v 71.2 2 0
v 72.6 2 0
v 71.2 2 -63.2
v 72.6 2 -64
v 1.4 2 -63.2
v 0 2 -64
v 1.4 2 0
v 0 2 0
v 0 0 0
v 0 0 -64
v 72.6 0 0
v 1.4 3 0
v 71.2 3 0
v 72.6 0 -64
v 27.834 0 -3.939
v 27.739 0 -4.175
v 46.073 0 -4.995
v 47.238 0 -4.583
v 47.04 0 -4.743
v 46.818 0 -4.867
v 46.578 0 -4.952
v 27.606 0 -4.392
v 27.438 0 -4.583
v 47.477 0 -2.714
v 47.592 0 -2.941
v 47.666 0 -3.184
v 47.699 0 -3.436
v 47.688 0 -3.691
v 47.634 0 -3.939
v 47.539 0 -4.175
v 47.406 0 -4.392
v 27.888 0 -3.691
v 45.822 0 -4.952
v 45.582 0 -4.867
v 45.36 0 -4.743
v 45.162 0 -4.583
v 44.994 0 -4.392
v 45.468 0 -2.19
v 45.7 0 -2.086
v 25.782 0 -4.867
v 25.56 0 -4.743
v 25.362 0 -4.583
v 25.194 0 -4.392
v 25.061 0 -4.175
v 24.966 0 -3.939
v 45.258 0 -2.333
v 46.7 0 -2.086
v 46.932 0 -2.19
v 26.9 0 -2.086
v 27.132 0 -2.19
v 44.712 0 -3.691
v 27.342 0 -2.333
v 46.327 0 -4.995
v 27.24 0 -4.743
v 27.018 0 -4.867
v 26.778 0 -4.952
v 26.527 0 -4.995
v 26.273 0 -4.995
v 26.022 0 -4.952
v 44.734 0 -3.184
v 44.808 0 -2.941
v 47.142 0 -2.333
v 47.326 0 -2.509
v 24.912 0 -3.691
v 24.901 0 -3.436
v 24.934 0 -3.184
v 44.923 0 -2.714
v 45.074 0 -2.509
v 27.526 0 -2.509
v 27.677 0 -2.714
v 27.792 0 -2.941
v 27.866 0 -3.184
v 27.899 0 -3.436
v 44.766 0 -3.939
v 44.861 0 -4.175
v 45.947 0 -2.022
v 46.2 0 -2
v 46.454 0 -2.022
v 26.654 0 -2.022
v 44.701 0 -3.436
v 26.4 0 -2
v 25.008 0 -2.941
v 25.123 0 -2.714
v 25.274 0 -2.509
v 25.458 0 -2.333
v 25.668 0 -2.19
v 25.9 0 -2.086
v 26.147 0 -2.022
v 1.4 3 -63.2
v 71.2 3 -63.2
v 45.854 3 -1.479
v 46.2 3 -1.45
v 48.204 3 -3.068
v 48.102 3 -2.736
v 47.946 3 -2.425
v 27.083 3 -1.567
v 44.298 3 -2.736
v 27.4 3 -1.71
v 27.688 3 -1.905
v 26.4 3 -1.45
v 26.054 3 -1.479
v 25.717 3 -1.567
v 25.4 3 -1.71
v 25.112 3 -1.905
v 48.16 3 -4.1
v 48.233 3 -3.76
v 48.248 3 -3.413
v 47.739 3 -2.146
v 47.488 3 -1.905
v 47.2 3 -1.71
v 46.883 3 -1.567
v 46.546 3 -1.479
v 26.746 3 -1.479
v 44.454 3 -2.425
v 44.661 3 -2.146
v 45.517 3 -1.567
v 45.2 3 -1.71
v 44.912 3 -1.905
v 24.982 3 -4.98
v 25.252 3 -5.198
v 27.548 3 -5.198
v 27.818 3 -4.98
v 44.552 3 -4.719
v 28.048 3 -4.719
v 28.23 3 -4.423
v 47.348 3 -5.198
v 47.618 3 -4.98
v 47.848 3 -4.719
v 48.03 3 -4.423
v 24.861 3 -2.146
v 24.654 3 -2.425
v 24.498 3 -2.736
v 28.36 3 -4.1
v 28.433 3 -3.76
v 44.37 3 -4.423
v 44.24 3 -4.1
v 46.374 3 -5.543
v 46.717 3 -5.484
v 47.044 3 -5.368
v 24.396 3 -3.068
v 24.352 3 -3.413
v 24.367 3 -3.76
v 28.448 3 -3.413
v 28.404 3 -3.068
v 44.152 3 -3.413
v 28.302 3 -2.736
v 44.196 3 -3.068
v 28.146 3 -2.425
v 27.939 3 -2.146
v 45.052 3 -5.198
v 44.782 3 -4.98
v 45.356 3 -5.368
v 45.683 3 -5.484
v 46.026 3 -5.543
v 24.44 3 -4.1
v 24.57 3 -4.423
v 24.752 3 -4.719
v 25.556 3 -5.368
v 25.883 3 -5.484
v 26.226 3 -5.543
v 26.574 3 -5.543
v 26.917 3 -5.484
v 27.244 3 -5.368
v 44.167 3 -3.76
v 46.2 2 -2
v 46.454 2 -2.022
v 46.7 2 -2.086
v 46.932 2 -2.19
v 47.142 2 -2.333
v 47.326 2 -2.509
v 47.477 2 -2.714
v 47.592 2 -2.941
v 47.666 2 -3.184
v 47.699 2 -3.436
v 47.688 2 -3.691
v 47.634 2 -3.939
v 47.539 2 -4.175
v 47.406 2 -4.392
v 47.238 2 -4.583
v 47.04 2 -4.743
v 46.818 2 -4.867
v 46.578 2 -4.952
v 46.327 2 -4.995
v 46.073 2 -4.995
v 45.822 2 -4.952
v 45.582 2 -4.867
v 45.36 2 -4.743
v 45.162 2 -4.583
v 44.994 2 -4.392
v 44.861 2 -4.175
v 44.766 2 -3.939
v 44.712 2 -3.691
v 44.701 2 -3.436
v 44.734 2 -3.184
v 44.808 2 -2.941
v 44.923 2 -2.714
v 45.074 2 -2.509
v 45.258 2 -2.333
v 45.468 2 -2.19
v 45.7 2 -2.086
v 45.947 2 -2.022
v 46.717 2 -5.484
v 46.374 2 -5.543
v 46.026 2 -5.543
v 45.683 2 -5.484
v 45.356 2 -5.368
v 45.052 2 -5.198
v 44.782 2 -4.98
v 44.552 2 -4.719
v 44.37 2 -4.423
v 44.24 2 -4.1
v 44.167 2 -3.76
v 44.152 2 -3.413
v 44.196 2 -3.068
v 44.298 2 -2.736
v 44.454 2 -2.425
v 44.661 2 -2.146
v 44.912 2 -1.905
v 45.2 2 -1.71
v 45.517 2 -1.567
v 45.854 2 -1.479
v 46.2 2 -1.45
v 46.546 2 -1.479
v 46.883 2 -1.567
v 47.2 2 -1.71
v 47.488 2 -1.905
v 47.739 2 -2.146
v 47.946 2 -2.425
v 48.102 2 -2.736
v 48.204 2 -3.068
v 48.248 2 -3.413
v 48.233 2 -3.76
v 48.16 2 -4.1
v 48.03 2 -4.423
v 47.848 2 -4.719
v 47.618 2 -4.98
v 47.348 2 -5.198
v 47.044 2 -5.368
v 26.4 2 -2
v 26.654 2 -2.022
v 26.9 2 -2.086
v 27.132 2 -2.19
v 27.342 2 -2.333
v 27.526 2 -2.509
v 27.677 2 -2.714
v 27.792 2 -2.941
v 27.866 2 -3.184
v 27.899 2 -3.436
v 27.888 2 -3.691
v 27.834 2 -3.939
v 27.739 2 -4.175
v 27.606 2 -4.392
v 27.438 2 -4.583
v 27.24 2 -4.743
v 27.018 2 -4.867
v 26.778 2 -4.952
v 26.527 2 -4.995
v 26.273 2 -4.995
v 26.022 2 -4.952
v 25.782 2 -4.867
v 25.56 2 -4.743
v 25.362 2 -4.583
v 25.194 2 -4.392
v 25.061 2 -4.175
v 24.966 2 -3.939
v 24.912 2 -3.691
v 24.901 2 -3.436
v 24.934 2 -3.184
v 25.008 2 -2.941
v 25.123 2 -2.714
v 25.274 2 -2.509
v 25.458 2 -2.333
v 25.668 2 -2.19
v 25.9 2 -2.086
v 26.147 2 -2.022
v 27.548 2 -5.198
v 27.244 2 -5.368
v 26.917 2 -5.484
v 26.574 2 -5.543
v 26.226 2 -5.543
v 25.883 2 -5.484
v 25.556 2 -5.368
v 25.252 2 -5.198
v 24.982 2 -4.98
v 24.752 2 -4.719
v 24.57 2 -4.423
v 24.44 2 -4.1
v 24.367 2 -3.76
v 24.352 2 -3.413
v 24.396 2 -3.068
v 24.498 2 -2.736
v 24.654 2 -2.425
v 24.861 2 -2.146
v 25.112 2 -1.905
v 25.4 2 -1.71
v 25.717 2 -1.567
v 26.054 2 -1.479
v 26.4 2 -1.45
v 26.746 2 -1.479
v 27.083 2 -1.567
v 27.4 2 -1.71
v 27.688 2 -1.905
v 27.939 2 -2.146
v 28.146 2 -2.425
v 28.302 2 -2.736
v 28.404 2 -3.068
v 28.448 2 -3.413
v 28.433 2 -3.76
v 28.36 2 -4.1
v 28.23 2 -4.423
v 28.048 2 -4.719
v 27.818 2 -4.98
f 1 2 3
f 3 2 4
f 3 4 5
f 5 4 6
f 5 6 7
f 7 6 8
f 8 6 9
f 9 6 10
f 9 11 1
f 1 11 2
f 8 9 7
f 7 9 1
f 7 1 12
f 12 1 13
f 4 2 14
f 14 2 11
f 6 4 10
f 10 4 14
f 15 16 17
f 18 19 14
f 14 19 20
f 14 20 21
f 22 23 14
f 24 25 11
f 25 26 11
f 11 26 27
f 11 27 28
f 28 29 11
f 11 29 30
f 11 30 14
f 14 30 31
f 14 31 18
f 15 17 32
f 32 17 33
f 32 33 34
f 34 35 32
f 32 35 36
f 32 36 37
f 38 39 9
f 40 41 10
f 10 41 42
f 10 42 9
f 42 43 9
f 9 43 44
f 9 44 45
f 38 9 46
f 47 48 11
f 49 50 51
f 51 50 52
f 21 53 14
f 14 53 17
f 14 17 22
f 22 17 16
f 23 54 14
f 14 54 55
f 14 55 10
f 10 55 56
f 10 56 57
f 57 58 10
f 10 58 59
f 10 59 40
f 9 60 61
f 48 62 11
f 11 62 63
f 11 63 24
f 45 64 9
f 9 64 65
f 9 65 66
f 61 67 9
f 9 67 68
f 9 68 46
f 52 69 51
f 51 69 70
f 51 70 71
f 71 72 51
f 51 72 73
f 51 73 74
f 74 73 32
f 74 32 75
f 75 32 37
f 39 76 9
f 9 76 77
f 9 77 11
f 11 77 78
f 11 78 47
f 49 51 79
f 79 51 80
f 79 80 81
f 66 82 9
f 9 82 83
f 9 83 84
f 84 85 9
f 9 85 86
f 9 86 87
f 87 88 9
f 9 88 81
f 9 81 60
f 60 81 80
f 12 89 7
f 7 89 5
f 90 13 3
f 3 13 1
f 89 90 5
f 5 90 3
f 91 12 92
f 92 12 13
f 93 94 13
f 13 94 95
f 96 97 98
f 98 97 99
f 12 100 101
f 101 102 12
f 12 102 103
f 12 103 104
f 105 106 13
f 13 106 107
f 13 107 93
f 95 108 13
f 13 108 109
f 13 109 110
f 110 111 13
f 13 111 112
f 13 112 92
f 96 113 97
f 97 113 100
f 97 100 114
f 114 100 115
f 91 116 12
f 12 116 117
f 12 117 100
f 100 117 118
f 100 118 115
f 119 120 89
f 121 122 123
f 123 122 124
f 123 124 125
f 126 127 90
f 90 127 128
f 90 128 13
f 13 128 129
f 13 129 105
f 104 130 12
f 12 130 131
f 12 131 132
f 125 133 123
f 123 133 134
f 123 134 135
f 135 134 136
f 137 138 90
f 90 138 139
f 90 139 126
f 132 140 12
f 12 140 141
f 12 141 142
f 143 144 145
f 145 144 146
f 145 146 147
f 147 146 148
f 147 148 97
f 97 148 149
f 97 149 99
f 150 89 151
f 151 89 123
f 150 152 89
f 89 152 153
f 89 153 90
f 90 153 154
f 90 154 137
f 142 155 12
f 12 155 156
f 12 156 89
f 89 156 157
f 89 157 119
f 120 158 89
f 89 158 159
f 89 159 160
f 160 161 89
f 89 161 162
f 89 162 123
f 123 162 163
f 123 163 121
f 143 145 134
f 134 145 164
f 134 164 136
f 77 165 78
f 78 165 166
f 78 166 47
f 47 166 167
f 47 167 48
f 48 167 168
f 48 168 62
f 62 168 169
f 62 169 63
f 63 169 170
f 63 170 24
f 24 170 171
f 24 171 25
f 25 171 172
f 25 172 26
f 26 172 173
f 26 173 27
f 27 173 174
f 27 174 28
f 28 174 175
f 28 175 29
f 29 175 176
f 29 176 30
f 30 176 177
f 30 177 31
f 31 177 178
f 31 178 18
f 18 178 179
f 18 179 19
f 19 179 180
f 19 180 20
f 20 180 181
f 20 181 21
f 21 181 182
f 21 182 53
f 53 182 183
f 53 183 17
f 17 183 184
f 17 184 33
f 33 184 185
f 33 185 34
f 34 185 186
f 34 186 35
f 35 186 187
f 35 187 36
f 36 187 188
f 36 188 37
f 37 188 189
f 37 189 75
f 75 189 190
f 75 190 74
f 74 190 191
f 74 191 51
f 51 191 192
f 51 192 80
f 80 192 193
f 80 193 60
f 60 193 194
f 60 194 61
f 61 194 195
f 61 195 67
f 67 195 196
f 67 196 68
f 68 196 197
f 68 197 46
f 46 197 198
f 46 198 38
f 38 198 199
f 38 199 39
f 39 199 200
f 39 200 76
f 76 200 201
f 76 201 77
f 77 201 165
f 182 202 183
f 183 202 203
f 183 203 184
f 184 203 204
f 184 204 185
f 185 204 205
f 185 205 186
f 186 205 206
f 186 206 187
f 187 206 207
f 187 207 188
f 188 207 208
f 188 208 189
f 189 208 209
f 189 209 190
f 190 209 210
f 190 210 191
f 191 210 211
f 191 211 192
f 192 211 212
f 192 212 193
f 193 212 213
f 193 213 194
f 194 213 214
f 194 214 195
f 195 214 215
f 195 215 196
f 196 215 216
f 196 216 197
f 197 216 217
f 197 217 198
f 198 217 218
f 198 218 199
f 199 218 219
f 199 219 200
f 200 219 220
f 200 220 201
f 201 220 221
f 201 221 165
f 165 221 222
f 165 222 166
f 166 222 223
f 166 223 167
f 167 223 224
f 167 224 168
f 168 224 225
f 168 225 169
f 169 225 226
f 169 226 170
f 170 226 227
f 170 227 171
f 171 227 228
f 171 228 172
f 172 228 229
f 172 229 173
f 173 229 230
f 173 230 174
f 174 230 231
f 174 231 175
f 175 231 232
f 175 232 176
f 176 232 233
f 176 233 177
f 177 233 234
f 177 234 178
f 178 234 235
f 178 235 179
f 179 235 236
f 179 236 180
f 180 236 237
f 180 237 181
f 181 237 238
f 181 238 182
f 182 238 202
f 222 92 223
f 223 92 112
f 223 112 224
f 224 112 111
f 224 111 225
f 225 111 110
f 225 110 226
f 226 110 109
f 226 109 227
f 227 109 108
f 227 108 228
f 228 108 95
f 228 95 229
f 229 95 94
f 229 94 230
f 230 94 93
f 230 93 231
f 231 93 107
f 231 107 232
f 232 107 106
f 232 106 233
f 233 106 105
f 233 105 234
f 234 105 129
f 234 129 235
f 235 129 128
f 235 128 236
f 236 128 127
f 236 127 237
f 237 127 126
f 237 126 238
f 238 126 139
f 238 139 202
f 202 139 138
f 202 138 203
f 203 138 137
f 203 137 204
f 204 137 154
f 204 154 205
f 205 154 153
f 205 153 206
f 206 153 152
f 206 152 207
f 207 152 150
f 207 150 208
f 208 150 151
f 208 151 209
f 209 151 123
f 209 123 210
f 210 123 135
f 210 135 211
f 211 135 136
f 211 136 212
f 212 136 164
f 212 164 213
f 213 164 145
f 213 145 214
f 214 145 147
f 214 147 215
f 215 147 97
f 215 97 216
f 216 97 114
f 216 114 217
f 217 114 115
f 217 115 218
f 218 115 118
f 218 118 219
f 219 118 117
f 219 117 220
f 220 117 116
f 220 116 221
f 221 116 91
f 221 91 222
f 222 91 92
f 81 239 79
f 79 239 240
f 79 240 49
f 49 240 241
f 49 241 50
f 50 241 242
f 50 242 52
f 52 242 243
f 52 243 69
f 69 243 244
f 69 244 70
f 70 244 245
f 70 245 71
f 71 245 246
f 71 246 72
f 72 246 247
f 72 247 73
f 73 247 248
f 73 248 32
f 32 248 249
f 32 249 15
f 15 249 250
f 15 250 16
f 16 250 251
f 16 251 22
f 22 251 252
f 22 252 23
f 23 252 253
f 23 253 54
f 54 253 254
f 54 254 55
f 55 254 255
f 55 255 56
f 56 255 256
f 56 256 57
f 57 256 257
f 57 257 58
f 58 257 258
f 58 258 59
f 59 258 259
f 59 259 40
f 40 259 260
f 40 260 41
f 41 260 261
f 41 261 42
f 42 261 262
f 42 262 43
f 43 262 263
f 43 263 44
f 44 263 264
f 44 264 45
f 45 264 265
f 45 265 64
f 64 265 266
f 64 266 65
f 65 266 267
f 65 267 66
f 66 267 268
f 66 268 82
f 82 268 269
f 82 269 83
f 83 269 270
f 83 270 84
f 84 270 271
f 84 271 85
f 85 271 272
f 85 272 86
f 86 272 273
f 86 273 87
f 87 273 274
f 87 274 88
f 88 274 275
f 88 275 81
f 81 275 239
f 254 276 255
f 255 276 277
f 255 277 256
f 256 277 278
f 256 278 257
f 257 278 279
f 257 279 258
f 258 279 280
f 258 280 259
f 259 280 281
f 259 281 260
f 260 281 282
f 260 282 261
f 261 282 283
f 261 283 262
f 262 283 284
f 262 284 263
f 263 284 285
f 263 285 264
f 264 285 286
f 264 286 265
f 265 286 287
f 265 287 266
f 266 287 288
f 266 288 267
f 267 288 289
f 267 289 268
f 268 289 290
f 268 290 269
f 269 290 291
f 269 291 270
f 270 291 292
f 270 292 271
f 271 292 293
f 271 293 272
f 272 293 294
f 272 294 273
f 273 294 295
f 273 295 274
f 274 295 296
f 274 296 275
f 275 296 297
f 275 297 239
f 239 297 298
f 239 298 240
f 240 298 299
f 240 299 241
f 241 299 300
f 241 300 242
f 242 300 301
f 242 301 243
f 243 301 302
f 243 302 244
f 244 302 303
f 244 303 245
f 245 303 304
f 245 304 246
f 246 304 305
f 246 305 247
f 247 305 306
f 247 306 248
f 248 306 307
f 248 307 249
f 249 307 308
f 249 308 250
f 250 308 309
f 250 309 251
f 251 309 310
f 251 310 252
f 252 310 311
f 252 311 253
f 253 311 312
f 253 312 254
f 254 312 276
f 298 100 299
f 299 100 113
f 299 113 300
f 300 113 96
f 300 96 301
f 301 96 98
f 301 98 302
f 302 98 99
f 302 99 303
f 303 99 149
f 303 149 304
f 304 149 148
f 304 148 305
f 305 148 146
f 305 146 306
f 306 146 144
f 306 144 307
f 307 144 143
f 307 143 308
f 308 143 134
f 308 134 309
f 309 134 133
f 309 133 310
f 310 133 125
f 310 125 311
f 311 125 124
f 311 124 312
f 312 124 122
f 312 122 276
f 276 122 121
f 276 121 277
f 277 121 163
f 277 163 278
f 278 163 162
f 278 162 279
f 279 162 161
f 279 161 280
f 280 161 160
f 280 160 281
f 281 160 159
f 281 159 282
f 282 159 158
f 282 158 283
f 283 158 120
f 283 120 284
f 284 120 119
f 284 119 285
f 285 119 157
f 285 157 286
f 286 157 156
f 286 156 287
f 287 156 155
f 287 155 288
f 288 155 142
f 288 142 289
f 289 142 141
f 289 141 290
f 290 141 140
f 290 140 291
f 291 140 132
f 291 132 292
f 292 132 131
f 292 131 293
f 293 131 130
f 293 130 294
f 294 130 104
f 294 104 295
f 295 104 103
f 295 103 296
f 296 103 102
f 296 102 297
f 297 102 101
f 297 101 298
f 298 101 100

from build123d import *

# Parameters (mm, degrees)
SKETCH1_W           = 72.6
SKETCH1_H           = 64
BOSS_EXTRUDE1_DEPTH = 2
SKETCH2_W           = 69.8
SKETCH2_H           = 63.2
BOSS_EXTRUDE2_DEPTH = 1
HOLE1_D             = 3
HOLE1_CBORE_D       = 4.1
HOLE1_CBORE_DEPTH   = 1


with BuildPart() as part:
    # Sketch1 → Boss-Extrude1 (new body)
    with BuildSketch(Plane(origin=(0, 0, 0), x_dir=(1, 0, 0), z_dir=(0, 1, 0))):
        with Locations((36.3, 32)):
            Rectangle(SKETCH1_W, SKETCH1_H)
    extrude(amount=BOSS_EXTRUDE1_DEPTH)

    # Sketch2 → Boss-Extrude2 (add)
    with BuildSketch(Plane(origin=(0, 2, 0), x_dir=(1, 0, 0), z_dir=(0, 1, 0))):
        with Locations((36.3, 31.6)):
            Rectangle(SKETCH2_W, SKETCH2_H)
    extrude(amount=BOSS_EXTRUDE2_DEPTH)

    # Hole1 (through all)
    with Locations(Plane(origin=(0, 3, 0), x_dir=(1, 0, 0), z_dir=(0, 1, 0))):
        with Locations((26.4, 3.5), (46.2, 3.5)):
            CounterBoreHole(HOLE1_D / 2, HOLE1_CBORE_D / 2, HOLE1_CBORE_DEPTH)


solid = part.part
